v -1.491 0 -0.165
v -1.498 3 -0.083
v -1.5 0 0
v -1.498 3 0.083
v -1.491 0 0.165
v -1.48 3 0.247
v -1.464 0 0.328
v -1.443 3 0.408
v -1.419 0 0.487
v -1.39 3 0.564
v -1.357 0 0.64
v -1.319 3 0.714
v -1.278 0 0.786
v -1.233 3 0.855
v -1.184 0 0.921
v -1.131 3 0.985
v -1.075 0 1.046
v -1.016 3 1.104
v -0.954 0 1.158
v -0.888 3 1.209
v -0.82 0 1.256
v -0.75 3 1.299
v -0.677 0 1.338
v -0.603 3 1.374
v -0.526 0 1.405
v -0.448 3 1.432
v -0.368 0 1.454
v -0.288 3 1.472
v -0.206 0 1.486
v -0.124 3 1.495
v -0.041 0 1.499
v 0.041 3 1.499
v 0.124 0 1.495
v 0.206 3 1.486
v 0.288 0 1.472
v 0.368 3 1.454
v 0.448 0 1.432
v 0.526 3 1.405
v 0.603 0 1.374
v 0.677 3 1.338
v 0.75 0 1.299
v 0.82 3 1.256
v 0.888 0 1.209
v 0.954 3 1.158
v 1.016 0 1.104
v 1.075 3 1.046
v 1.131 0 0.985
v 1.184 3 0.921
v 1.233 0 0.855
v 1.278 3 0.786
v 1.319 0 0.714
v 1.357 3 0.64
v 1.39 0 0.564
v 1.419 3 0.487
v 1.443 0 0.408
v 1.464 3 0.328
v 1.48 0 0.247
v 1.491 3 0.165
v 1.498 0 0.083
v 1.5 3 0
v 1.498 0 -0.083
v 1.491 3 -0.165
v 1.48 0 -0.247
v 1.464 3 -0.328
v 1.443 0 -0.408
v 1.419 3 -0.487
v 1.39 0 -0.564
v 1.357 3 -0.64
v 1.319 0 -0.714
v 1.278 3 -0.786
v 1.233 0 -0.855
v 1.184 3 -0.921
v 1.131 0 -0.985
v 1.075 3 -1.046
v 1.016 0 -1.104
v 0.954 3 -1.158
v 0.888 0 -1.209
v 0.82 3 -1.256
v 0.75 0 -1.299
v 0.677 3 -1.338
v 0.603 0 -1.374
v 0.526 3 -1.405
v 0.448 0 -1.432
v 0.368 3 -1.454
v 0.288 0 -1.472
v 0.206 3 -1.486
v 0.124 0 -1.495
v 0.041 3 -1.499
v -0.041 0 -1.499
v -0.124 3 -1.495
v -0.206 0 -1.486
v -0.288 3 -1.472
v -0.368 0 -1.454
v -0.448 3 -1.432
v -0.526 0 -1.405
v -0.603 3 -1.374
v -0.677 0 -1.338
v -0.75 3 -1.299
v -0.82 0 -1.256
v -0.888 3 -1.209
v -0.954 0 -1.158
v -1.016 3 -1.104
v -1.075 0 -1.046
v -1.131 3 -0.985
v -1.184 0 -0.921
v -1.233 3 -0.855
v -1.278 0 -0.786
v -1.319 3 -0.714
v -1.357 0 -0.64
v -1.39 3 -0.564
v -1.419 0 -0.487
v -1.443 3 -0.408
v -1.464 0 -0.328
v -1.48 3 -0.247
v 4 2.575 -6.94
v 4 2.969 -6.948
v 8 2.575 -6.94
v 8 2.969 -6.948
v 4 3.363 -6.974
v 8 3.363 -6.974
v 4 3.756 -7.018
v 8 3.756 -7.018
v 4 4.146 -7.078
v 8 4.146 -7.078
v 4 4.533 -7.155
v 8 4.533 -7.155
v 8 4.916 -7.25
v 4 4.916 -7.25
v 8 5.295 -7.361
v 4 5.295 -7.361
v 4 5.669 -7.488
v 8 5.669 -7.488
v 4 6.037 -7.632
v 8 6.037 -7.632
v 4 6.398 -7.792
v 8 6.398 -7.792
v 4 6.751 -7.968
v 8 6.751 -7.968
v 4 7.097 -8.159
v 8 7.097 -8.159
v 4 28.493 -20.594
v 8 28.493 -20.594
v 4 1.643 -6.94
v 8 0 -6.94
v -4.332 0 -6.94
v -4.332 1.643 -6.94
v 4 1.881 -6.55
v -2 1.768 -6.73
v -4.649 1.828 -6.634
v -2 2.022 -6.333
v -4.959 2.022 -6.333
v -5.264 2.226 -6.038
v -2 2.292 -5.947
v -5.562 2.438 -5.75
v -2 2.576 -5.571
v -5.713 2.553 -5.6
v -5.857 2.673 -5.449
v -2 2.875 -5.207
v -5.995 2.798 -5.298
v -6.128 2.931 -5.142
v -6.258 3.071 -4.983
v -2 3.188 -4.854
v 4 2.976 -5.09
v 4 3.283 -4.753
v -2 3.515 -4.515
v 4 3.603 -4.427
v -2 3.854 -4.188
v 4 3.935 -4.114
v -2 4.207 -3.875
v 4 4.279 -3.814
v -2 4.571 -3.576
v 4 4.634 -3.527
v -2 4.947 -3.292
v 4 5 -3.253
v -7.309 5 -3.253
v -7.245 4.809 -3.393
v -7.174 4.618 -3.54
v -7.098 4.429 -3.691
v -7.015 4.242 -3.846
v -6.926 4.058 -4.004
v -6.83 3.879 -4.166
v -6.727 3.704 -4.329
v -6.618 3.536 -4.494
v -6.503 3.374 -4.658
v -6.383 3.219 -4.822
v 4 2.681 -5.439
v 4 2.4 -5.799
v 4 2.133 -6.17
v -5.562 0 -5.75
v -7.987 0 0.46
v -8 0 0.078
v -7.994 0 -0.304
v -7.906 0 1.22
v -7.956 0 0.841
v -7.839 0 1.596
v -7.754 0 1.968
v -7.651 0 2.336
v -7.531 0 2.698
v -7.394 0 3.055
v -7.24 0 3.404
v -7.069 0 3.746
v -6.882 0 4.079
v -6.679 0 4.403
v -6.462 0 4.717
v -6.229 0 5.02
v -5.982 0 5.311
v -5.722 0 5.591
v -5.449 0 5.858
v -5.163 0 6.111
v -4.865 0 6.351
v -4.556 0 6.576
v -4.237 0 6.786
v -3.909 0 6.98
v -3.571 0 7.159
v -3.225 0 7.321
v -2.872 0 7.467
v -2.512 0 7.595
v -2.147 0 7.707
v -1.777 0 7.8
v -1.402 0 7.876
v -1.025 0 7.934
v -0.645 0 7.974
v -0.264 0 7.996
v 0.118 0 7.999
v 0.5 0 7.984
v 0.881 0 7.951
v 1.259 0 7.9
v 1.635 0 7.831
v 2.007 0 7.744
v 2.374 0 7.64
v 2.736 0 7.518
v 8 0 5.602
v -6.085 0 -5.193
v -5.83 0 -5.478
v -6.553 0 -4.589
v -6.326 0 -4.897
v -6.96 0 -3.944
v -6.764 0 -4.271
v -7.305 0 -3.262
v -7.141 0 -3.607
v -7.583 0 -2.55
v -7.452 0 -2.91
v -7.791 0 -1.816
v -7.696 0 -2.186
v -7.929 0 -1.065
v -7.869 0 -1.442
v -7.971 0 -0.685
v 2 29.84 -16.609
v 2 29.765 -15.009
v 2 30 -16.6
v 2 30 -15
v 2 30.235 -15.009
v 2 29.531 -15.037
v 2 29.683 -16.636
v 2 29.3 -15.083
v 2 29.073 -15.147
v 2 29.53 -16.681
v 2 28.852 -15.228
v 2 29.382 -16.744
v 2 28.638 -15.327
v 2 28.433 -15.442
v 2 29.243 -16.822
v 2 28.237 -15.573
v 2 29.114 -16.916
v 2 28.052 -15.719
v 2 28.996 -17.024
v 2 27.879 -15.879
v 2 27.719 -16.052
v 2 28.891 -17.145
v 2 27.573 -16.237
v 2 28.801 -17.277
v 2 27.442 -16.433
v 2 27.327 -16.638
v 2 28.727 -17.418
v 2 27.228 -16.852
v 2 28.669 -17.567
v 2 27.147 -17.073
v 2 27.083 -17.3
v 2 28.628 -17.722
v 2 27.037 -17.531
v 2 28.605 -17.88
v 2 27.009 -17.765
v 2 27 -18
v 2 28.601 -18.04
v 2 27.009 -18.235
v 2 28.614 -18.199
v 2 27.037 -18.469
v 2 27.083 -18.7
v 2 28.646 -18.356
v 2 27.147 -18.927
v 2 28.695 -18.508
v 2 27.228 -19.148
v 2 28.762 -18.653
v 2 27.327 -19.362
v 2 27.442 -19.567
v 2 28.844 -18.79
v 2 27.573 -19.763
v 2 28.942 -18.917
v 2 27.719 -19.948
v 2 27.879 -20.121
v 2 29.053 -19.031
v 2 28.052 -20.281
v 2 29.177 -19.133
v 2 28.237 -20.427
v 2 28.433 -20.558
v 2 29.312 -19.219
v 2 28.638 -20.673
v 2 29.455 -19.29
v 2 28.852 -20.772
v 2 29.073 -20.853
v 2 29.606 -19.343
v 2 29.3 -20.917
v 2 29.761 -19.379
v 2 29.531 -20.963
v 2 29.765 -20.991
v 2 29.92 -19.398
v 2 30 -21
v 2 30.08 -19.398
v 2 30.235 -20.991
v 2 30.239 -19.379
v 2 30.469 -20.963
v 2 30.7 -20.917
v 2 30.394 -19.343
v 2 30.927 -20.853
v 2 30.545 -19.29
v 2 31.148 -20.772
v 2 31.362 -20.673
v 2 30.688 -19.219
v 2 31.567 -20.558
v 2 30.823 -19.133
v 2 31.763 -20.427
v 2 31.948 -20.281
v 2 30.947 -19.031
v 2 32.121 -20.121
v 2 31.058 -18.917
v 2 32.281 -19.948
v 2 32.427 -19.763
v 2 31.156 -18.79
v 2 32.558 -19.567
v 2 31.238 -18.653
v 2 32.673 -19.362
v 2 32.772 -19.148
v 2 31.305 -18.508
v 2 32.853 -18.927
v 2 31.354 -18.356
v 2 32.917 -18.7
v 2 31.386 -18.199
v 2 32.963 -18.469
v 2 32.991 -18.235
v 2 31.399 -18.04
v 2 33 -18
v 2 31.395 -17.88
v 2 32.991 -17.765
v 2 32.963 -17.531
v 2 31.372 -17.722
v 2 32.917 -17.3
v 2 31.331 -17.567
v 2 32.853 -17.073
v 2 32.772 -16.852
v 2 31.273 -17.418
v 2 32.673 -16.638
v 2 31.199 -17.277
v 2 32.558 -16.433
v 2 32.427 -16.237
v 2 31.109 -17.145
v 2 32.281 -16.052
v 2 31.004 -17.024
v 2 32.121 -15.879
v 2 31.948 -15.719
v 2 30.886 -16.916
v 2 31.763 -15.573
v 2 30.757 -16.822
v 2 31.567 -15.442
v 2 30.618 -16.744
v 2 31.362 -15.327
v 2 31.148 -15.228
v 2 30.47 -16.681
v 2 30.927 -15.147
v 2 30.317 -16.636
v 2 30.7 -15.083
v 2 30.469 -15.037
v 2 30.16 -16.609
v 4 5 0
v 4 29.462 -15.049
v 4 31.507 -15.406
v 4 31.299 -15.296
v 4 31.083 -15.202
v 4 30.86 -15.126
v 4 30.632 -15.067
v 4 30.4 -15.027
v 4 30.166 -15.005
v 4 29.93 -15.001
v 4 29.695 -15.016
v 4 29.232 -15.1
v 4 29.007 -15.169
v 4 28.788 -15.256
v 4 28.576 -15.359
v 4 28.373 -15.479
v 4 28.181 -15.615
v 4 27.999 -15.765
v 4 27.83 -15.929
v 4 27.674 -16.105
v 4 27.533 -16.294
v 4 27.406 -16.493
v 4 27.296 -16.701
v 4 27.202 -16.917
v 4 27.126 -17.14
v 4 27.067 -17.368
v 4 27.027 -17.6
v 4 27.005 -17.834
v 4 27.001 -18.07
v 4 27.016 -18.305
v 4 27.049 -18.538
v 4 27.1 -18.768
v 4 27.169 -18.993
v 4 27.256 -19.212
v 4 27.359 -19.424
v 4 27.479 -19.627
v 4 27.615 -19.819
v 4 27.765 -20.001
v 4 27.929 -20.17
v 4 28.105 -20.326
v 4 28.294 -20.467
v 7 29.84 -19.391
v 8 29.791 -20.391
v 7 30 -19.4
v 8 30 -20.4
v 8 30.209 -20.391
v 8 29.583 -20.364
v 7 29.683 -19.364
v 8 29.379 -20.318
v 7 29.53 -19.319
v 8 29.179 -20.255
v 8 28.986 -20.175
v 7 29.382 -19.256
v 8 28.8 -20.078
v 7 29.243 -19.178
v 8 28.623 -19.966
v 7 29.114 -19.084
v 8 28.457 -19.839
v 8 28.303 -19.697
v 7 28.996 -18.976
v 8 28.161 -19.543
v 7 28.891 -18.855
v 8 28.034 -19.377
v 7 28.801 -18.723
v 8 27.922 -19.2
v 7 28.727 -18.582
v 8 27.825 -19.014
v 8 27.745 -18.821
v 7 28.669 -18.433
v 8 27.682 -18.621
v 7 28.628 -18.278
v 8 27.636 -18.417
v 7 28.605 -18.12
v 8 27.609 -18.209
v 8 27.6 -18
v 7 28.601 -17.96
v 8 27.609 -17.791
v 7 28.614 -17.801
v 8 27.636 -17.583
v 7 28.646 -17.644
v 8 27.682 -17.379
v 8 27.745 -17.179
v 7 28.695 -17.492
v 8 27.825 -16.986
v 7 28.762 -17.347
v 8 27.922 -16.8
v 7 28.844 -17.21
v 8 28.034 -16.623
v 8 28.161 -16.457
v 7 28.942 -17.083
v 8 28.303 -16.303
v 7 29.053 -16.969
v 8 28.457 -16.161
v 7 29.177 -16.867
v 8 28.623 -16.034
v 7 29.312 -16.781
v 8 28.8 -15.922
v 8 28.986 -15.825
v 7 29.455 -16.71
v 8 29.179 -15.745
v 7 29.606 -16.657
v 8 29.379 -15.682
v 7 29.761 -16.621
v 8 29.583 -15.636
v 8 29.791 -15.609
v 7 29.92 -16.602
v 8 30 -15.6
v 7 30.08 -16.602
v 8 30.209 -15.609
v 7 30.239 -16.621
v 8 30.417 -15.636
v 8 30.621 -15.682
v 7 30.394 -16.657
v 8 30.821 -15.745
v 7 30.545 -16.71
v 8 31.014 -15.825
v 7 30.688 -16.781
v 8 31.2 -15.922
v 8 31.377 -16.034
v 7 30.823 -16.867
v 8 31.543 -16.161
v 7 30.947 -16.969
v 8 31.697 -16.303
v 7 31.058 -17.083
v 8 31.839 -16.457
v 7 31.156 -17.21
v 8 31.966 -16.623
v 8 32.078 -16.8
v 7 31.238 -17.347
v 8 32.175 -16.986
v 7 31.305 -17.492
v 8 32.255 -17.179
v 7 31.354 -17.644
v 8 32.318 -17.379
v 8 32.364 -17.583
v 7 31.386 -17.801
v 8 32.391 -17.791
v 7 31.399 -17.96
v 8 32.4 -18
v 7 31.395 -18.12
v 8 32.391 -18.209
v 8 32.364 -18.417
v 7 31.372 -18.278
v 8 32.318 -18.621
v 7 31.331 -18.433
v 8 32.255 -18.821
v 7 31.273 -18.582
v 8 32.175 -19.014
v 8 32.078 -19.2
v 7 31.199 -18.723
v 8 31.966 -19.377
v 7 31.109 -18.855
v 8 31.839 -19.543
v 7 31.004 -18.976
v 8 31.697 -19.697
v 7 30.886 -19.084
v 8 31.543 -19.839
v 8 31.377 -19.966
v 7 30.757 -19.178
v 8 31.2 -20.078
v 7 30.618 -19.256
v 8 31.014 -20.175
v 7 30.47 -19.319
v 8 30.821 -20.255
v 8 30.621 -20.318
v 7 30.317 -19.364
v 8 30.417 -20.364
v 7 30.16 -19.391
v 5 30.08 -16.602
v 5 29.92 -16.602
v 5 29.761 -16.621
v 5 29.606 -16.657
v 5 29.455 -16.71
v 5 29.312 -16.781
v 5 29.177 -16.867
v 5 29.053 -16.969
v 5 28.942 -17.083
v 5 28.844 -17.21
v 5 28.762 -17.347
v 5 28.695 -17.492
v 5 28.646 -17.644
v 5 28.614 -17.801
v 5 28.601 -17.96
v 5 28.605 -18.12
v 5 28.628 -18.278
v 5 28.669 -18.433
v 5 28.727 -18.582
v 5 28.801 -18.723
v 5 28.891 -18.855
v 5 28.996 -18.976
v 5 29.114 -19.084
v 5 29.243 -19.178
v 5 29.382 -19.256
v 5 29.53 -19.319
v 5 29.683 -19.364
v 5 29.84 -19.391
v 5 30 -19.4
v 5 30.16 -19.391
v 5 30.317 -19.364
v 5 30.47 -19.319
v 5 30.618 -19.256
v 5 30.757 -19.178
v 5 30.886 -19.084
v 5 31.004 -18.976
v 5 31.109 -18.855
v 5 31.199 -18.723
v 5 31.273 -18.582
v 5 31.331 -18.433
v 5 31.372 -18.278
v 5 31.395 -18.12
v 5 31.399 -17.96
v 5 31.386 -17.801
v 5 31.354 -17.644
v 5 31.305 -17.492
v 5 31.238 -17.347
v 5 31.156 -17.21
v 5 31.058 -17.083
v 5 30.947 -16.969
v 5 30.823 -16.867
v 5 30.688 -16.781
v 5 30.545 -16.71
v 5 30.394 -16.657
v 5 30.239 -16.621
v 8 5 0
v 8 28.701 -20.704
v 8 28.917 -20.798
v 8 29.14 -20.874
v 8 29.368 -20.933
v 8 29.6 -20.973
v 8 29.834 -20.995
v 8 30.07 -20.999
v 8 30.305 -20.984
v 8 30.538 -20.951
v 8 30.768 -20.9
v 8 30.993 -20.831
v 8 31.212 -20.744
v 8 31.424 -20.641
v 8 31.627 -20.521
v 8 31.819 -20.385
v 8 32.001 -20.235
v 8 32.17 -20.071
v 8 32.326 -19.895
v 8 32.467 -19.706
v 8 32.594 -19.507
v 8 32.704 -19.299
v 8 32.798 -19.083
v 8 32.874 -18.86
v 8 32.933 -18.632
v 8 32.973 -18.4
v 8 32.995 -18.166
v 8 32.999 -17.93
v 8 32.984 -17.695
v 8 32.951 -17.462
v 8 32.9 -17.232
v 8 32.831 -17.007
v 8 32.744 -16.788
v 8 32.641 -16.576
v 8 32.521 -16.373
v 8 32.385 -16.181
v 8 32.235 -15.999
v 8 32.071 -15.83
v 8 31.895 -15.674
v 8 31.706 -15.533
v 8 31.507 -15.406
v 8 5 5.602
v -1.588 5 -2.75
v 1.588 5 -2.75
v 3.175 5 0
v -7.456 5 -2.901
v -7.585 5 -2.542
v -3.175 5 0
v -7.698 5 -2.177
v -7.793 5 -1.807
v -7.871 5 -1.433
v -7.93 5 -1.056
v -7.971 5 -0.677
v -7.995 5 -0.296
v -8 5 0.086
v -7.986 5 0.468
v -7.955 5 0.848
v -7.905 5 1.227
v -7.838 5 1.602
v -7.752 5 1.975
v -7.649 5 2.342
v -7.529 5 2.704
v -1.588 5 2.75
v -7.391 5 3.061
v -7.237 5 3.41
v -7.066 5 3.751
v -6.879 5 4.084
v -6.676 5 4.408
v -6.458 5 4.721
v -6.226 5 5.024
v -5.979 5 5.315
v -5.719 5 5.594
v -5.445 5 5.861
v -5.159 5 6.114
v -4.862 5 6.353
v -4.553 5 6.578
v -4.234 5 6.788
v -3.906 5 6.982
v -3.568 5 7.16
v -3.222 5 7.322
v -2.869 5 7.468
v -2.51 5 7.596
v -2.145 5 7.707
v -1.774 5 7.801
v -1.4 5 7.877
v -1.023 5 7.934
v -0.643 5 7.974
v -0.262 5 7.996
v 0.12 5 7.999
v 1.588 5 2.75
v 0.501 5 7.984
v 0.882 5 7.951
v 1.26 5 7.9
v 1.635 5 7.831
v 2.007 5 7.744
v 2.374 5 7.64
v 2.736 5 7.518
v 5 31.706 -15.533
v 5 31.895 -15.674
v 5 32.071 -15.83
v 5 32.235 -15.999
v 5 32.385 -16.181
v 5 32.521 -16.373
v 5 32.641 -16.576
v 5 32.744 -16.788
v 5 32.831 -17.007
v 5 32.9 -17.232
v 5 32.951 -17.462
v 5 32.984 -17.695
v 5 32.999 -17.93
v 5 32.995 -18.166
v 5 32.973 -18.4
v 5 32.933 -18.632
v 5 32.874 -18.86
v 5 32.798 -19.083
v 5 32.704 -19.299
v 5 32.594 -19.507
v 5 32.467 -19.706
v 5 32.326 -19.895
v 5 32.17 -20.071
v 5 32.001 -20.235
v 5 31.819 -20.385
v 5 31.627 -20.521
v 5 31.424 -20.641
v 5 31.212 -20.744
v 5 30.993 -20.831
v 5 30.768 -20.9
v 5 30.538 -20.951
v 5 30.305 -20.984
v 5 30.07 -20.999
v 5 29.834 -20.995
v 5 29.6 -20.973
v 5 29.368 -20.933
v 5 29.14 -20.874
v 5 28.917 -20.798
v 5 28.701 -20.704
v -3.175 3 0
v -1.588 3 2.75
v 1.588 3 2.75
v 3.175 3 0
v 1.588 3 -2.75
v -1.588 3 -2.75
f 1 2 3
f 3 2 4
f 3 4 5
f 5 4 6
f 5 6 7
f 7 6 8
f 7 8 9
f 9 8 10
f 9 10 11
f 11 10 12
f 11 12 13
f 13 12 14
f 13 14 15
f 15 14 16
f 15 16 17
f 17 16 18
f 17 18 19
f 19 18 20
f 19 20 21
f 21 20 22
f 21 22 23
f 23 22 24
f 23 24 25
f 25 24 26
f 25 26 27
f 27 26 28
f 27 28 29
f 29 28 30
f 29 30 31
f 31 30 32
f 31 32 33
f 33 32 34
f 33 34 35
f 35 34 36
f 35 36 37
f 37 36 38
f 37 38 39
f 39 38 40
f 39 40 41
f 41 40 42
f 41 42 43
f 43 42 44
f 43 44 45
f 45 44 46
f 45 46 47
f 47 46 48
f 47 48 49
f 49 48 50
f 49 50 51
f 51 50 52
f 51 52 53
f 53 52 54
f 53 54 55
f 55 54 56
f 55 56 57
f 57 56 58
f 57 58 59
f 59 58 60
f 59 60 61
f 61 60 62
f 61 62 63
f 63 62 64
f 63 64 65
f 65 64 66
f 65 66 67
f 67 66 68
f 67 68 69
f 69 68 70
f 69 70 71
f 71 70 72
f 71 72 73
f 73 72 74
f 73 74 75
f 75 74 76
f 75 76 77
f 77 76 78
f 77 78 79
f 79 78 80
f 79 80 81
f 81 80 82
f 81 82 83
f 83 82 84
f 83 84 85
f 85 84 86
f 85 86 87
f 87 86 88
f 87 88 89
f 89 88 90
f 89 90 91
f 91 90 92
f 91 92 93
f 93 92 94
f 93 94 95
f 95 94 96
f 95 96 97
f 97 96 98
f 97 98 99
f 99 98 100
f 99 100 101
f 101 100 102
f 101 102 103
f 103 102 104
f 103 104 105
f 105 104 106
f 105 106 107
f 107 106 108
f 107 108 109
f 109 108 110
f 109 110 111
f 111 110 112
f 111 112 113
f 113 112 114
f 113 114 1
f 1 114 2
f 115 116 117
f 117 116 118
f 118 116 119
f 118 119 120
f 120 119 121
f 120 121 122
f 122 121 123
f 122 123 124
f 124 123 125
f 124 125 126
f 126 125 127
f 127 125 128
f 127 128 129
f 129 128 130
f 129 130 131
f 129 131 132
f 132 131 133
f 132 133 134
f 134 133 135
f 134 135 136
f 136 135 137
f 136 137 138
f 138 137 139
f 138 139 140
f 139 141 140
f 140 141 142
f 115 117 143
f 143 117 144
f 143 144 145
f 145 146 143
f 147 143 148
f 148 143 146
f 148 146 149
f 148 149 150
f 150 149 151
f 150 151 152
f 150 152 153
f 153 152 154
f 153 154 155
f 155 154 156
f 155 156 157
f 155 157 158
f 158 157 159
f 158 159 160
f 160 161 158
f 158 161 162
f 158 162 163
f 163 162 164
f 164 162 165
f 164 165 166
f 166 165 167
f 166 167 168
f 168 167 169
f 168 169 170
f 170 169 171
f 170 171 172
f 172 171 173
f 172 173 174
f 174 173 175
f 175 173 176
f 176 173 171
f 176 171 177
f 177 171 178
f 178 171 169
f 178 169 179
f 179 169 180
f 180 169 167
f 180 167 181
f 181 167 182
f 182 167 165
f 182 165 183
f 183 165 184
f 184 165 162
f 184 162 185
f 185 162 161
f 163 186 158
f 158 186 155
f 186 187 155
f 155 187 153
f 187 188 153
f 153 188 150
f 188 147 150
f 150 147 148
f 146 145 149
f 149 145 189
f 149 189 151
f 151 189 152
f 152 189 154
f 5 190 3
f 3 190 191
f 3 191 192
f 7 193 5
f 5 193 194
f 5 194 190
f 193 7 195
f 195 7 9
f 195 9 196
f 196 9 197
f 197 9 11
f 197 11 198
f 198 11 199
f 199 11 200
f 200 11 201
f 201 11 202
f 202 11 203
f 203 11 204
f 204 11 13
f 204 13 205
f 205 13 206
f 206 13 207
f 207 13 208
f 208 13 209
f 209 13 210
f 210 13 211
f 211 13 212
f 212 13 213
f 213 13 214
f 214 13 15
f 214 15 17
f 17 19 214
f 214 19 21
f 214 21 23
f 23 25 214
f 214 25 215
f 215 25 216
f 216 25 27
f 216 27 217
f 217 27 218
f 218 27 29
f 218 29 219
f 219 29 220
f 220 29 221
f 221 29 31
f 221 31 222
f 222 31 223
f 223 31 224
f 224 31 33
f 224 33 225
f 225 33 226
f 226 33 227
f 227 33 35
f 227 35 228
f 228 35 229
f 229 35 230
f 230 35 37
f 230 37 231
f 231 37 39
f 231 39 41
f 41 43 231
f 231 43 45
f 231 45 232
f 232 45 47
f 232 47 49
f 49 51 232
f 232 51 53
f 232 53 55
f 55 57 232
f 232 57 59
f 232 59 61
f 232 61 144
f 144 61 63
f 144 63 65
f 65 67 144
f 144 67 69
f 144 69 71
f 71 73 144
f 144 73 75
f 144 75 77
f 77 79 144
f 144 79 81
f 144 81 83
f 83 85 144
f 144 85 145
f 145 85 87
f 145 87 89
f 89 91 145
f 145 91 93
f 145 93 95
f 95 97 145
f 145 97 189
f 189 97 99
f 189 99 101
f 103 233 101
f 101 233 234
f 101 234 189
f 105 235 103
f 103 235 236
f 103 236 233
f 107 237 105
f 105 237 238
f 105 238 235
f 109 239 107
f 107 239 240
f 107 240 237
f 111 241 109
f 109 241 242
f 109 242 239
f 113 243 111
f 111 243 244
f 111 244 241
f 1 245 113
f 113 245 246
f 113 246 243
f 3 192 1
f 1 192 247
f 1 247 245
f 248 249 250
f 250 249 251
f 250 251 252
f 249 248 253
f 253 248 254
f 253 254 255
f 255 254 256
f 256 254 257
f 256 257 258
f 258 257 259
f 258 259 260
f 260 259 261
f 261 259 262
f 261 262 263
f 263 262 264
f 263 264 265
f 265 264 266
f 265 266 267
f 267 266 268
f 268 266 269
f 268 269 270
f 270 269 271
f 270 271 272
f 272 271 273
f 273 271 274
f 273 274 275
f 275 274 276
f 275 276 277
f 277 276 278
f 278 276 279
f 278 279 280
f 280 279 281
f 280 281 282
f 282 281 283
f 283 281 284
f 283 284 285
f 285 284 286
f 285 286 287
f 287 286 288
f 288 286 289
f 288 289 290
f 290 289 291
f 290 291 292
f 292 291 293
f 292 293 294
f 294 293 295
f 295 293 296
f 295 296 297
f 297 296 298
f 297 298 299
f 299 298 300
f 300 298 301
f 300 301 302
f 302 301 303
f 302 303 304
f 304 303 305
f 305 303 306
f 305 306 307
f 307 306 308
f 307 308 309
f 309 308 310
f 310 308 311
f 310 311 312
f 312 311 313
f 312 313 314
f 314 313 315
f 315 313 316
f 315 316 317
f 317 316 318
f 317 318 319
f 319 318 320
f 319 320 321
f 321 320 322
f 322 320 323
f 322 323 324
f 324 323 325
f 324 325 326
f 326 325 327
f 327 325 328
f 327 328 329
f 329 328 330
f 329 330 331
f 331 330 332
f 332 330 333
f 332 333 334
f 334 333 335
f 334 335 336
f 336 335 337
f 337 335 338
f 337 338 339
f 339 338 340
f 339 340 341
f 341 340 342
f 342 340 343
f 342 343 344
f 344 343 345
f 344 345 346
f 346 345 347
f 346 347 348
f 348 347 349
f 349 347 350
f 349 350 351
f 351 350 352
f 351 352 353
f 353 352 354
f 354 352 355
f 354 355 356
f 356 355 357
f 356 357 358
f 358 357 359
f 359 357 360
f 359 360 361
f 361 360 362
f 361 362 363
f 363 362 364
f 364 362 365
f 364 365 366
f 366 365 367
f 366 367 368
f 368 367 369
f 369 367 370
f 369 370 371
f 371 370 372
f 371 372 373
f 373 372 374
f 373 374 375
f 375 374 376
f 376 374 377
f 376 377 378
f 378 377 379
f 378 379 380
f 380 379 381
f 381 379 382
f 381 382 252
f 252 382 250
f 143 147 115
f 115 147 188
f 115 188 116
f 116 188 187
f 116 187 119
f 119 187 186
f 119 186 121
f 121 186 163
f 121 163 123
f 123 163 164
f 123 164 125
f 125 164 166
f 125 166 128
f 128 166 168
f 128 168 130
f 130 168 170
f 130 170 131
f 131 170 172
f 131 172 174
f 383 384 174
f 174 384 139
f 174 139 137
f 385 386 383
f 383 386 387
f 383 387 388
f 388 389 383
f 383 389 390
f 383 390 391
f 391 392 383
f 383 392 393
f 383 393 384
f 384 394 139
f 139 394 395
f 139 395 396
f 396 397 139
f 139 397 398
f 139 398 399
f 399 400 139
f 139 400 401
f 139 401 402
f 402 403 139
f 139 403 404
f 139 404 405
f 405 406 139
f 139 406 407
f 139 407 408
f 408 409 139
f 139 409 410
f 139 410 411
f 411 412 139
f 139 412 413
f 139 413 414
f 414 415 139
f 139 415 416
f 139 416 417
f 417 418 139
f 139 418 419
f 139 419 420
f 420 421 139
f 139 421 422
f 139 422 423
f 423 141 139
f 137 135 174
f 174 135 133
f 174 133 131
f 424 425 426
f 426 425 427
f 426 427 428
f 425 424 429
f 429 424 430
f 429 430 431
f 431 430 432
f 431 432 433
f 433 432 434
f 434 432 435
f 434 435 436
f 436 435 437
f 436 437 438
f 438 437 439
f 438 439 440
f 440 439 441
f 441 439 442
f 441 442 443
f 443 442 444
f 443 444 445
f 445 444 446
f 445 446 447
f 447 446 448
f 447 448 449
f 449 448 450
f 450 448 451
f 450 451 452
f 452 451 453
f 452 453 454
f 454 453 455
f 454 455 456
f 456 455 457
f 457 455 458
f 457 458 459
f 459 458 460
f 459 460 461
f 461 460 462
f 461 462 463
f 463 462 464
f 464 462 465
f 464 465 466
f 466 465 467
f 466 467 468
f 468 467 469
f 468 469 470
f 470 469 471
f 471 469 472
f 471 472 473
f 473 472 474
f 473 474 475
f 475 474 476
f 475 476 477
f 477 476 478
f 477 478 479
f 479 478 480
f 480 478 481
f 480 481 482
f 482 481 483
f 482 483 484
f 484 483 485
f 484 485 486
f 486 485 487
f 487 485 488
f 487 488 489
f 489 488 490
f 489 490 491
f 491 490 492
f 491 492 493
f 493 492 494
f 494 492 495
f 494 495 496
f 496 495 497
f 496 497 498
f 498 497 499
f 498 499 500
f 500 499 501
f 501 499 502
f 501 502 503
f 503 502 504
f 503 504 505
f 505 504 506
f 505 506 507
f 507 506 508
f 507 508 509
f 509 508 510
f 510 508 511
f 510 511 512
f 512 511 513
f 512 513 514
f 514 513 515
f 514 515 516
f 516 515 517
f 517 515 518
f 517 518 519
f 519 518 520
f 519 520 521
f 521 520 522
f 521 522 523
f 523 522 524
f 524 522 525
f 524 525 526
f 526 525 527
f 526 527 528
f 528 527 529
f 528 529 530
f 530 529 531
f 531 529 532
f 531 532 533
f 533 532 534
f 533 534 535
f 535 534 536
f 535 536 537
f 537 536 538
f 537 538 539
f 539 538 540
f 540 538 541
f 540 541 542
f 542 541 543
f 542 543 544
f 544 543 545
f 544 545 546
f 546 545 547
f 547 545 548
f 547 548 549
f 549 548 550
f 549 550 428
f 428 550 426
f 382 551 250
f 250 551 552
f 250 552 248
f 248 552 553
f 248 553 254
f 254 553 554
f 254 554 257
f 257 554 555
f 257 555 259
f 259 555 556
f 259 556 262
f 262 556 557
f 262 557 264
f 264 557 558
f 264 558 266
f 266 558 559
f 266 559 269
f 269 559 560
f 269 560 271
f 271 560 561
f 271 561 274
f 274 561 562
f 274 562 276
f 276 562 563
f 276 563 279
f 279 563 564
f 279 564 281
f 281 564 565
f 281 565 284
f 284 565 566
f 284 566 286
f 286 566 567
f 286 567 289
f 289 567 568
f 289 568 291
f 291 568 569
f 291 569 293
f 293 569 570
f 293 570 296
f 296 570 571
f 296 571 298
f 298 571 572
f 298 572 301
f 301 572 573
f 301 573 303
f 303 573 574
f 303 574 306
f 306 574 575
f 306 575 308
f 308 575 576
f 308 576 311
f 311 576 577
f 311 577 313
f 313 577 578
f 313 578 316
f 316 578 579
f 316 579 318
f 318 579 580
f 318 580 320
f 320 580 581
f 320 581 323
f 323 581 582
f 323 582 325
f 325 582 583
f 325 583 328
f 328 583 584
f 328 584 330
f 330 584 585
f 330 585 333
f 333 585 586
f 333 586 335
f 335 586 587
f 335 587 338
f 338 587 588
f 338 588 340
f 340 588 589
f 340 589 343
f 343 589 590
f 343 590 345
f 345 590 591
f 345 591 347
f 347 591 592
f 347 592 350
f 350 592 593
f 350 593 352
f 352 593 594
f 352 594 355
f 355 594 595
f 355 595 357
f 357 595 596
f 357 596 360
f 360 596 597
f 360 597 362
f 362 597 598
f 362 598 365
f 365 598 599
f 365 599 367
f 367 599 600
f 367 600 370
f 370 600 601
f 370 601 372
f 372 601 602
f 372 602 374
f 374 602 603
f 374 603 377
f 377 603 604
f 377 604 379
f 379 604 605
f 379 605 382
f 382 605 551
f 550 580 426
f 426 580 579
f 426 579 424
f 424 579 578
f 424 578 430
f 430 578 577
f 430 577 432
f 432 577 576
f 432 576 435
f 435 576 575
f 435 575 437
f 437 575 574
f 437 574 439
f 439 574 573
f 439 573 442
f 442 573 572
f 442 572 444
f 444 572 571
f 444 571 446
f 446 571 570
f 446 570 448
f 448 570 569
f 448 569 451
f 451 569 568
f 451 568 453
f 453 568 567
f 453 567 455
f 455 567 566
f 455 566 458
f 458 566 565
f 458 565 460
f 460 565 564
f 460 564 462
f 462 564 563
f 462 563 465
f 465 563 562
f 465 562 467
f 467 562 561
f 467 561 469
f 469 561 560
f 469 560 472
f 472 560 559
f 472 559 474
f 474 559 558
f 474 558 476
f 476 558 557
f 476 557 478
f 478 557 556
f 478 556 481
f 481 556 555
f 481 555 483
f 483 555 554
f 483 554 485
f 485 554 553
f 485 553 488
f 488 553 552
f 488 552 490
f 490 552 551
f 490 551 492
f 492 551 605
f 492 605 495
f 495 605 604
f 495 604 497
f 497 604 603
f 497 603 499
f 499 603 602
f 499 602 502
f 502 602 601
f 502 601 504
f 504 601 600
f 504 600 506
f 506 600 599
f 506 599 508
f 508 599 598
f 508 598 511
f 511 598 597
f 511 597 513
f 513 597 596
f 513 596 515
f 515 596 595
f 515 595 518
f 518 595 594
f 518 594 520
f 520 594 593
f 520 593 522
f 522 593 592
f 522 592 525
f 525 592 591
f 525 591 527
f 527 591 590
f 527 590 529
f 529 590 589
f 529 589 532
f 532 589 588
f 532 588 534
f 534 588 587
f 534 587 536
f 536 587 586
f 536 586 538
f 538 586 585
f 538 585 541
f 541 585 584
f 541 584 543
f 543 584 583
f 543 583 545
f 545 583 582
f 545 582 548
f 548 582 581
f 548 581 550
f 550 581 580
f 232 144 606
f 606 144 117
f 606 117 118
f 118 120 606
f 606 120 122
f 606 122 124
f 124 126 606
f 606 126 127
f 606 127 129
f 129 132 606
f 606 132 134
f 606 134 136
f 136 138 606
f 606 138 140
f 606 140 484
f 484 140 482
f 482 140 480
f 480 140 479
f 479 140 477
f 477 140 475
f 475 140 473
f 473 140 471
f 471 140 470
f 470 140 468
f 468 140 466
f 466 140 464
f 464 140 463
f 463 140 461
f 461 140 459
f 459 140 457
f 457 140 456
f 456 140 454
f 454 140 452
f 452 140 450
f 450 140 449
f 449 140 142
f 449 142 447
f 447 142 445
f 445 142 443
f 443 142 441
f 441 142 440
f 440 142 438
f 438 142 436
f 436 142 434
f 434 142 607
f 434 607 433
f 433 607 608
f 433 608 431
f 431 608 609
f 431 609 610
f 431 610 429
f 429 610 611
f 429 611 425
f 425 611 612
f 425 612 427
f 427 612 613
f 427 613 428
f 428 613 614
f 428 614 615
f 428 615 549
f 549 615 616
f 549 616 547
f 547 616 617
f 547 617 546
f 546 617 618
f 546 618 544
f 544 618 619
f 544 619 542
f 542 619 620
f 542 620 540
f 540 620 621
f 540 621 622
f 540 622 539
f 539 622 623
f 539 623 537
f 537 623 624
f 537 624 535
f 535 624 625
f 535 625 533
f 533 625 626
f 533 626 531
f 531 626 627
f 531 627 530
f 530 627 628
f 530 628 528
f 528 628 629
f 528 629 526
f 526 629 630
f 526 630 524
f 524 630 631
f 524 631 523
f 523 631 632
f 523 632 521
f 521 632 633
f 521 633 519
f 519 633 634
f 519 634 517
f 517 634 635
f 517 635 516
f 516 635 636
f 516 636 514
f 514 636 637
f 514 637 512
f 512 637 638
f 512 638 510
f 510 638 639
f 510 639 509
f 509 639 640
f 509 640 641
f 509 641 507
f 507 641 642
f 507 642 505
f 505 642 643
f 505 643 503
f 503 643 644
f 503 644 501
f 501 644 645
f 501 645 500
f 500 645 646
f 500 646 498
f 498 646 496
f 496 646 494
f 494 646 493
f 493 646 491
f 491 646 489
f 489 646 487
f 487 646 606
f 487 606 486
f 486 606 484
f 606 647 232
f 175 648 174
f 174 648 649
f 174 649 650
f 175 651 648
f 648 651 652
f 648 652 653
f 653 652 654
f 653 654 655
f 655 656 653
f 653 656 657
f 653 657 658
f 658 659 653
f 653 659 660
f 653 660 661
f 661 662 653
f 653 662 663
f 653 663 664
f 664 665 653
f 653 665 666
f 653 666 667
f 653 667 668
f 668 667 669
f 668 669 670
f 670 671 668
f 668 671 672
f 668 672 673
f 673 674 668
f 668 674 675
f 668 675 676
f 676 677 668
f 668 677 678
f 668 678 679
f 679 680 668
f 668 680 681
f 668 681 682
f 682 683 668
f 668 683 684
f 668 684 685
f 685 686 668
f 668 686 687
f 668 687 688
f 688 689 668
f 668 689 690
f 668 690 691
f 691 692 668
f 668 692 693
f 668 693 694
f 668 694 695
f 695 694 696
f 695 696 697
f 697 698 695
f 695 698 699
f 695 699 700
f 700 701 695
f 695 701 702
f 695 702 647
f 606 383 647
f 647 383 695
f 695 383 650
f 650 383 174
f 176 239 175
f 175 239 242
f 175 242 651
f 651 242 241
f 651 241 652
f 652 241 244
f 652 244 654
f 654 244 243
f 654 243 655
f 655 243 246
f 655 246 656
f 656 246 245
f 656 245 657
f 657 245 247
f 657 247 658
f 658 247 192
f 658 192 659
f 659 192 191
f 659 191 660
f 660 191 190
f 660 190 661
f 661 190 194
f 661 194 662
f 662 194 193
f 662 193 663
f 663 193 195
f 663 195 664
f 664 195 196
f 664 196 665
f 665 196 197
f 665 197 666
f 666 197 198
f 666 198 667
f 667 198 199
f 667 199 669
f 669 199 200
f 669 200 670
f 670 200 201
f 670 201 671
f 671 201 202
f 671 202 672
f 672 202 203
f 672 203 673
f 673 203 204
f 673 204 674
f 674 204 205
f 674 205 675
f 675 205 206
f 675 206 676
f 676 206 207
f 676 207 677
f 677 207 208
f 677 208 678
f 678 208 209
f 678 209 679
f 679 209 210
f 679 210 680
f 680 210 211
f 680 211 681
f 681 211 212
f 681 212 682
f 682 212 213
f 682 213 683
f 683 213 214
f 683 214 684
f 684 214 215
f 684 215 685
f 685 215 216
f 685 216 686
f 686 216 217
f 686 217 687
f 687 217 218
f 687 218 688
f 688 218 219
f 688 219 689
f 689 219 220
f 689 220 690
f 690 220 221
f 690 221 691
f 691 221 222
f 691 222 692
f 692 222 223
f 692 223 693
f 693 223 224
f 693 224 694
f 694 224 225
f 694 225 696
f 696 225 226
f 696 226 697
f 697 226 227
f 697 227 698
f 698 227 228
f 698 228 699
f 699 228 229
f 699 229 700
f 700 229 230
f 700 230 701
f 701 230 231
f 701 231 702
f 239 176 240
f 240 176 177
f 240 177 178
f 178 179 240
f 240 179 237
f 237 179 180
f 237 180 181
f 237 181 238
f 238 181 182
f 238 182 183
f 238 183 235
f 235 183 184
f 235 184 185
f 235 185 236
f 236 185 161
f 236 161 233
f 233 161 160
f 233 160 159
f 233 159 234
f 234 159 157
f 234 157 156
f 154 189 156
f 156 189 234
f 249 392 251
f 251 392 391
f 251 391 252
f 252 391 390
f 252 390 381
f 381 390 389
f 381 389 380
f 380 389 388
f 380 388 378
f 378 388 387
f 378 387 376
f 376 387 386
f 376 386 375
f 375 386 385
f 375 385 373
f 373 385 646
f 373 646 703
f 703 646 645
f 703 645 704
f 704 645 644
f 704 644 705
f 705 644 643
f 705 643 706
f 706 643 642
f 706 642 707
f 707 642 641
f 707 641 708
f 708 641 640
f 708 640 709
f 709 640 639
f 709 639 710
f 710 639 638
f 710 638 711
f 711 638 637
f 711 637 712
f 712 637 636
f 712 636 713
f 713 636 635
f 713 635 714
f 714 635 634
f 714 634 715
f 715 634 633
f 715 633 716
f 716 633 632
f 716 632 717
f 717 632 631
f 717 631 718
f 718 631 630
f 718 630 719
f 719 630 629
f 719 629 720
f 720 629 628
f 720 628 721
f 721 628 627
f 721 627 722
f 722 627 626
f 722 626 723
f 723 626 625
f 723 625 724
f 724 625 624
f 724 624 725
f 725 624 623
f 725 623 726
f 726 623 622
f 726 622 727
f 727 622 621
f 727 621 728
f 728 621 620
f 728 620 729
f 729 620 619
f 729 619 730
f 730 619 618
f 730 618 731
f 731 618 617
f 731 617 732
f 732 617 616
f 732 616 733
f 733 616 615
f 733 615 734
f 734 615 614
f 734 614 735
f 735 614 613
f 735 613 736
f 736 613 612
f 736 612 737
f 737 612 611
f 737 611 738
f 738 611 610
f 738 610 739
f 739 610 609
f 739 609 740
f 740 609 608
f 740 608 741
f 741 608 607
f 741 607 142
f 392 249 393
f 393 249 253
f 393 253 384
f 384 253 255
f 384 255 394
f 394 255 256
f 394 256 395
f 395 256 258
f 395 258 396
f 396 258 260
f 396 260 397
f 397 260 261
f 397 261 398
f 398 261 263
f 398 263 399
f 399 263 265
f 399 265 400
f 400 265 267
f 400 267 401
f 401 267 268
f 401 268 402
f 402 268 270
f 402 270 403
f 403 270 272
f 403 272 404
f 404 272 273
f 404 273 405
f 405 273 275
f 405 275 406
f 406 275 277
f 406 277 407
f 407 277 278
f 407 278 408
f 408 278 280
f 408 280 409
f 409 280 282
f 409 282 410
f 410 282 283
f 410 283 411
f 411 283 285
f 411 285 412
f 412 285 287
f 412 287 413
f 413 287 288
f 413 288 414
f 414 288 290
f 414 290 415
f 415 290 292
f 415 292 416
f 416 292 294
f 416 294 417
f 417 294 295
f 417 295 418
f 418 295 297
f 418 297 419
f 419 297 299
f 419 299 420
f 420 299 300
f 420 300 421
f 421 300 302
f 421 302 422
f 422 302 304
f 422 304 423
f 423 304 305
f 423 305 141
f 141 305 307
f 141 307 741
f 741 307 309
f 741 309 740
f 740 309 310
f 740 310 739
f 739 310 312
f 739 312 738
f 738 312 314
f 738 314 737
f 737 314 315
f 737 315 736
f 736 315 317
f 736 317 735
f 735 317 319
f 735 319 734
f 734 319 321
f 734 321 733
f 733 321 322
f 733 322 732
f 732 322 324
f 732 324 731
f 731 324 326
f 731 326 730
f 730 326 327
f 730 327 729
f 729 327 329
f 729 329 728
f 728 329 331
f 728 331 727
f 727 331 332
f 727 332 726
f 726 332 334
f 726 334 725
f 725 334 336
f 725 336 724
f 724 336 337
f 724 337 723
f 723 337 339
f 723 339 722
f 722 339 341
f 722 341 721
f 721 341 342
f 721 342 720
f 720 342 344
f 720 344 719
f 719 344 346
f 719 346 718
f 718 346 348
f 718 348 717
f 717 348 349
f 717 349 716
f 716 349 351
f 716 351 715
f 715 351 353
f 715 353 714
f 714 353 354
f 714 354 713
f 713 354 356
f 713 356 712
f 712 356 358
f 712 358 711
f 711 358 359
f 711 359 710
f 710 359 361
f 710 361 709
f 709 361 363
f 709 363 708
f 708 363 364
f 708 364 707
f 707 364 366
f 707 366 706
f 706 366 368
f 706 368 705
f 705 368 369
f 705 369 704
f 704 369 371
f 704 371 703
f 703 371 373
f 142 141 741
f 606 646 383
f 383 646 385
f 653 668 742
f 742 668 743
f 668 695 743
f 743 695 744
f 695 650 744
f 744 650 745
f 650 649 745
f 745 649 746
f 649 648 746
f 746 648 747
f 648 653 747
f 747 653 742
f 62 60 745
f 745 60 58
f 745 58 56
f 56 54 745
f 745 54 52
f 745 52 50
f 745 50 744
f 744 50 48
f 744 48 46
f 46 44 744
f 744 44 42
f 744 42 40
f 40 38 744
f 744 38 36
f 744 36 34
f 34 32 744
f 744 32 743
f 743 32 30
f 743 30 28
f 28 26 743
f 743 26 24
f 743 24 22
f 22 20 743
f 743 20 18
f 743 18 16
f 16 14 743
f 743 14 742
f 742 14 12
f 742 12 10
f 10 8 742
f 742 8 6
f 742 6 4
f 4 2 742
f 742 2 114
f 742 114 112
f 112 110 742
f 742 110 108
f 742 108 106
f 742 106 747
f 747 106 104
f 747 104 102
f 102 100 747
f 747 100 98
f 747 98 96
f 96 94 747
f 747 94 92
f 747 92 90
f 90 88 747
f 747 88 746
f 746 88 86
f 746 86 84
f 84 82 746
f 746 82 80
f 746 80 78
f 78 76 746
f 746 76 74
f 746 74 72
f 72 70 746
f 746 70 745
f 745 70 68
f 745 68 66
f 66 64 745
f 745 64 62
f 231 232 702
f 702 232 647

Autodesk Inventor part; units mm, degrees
ref_plane "YZ Plane" through (0, 0, 0) normal (1, 0, 0) x (0, 1, 0)
ref_plane "XZ Plane" through (0, 0, 0) normal (0, 1, 0) x (-1, 0, 0)
sketch "Эскиз1" plane through (0, 0, 0) normal (0, 1, 0) x (-1, 0, 0)
  circle A0 centre (0, 0) radius 1.4
  arc A1 (5.5622, -5.7499) -> (-8, 0) centre (0, 0) ccw
  line L0 (5.5622, -5.7499) -> (-4, -15)
  line L1 (-4, -15) -> (-8, -15)
  line L2 (-8, -15) -> (-8, 0)
  line L3 (-8, 0) -> (-8, 5.6017)
  line L4 (-8, 5.6017) -> (-2.7362, 7.5175)
  line L5 (-2.7362, 7.5175) -> (-8, 0)
  point P0 (-6, -15)
  dimension "d0" = 2.8
  dimension "d1" = 8
  dimension "d3" = 15
  dimension "d4" = 4
  dimension "d46" = 110
extrude "Выдавливание1" add sketch "Эскиз1" along normal blind 5 contours A0 | L0 L1 L2 L5 A1 | L5 A1 | A1 L3 L4
sketch "Эскиз2" plane through (0, 5, 0) normal (0, 1, 0) x (1, 0, 0)
  line L0 (-3.1754, 0) -> (-1.5877, 2.75)
  line L1 (-1.5877, 2.75) -> (1.5877, 2.75)
  line L2 (1.5877, 2.75) -> (3.1754, 0)
  line L3 (3.1754, 0) -> (1.5877, -2.75)
  line L4 (1.5877, -2.75) -> (-1.5877, -2.75)
  line L5 (-1.5877, -2.75) -> (-3.1754, 0)
  point P0 (0, 0)
  point P1 (0, 0)
  dimension "d8" = 5.5
extrude "Выдавливание2" cut sketch "Эскиз2" against normal blind 2
ref_plane "РабПлоскость1" through (-4, 0, 0) normal (1, 0, 0) x (0, 0, -1)
sketch "Эскиз5" plane through (8, 0, 0) normal (1, 0, 0) x (0, 0, -1)
  line L0 (5.7499, 5) -> (-8, 5) projected
  circle A0 centre (18, 30) radius 1.4
  arc A1 (20.5937, 28.4925) -> (15.4063, 31.5075) centre (18, 30) ccw
  line L1 (0, 5) -> (15.4063, 31.5075)
  line L2 (15, 0) -> (15, 5) projected
  line L3 (-5.6017, 5) -> (15, 5) projected
  line L4 (0, 5) -> (0, 3) projected
  line L5 (0, 5) -> (-8, 5)
  line L6 (-8, 0) -> (-8, 5) projected
  line L7 (-8, 0) -> (-8, 5) projected
  line L8 (5.7499, 0) -> (5.7499, 5) projected
  line L9 (-8, 0) -> (5.7499, 0)
  line L10 (6.9398, 5) -> (20.5937, 28.4925)
  line L11 (5.7499, 0) -> (6.9398, 5)
  point P0 (0, 0)
  dimension "d24" = 2.8
  dimension "d38" = 25
  dimension "d40" = 3
  dimension "d45" = 3
extrude "Выдавливание4" add sketch "Эскиз5" against normal blind 4 contours L0 L1 A1 L10 L3
sketch "Эскиз6" plane through (4, 0, 0) normal (-1, 0, 0) x (0, 0, 1)
  circle A0 centre (-18, 30) radius 1.4 projected
  line L0 (-15, 0) -> (-15, 5) projected
  line L1 (-15, 0) -> (-13, 0)
  arc A1 (-13, 0) -> (-3.2532, 5) centre (-13, 12) ccw
  line L2 (-3.2532, 5) -> (-15, 5)
  line L3 (-15, 0) -> (-15, 28.4925) projected
  line L4 (-15, 0) -> (-15, 5)
  point P0 (0, 0)
  point P1 (-20.5937, 28.4925)
  point P2 (0, 5)
  dimension "d27" = 12
extrude "Выдавливание5" cut sketch "Эскиз6" along normal up to next contours L0 L2 A1 L1
chamfer "Фаска1" distance 1 angle 45 1 edges at (8, 30, -16.6)
sketch "Эскиз7" plane through (4, 0, 0) normal (-1, 0, 0) x (0, 0, 1)
  arc A0 (-15.4063, 31.5075) -> (-20.5937, 28.4925) centre (-18, 30) ccw projected
  circle A1 centre (-18, 30) radius 3
  circle A2 centre (-18, 30) radius 1.4
  point P0 (0, 0)
  dimension "d33" = 2.8
extrude "Выдавливание6" add sketch "Эскиз7" along normal blind 2
sketch "Эскиз10" plane through (8, 0, 0) normal (1, 0, 0) x (0, 0, -1)
  line L0 (6.9398, 5) -> (20.5937, 28.4925) projected
  line L1 (6.9398, 5) -> (6.9398, 0)
  line L2 (0, 0) -> (15, 0) projected
  line L3 (6.9398, 5) -> (15, 5) projected
  line L4 (6.9398, 5) -> (15, 5)
  line L5 (15, 5) -> (15, 0)
extrude "Выдавливание7" cut sketch "Эскиз10" against normal up to next
sketch "Эскиз11" plane through (2, 30, -18) normal (-1, 0, 0) x (0, 0, 1)
  point P0 (18, -30)
fillet "Сопряжение1" radius 9 1 edges at (6, 5, -6.9398)
sketch "Эскиз12" plane through (0, 3, 0) normal (0, 1, 0) x (1, 0, 0)
  point P0 (0, 0)
  point P1 (0, 0)
hole "Отверстие1" at (0, 3, 0) direction (0, -1, 0) diameter 3 end through all
properties part number "Wheelholder" material "Пластик АБС"
